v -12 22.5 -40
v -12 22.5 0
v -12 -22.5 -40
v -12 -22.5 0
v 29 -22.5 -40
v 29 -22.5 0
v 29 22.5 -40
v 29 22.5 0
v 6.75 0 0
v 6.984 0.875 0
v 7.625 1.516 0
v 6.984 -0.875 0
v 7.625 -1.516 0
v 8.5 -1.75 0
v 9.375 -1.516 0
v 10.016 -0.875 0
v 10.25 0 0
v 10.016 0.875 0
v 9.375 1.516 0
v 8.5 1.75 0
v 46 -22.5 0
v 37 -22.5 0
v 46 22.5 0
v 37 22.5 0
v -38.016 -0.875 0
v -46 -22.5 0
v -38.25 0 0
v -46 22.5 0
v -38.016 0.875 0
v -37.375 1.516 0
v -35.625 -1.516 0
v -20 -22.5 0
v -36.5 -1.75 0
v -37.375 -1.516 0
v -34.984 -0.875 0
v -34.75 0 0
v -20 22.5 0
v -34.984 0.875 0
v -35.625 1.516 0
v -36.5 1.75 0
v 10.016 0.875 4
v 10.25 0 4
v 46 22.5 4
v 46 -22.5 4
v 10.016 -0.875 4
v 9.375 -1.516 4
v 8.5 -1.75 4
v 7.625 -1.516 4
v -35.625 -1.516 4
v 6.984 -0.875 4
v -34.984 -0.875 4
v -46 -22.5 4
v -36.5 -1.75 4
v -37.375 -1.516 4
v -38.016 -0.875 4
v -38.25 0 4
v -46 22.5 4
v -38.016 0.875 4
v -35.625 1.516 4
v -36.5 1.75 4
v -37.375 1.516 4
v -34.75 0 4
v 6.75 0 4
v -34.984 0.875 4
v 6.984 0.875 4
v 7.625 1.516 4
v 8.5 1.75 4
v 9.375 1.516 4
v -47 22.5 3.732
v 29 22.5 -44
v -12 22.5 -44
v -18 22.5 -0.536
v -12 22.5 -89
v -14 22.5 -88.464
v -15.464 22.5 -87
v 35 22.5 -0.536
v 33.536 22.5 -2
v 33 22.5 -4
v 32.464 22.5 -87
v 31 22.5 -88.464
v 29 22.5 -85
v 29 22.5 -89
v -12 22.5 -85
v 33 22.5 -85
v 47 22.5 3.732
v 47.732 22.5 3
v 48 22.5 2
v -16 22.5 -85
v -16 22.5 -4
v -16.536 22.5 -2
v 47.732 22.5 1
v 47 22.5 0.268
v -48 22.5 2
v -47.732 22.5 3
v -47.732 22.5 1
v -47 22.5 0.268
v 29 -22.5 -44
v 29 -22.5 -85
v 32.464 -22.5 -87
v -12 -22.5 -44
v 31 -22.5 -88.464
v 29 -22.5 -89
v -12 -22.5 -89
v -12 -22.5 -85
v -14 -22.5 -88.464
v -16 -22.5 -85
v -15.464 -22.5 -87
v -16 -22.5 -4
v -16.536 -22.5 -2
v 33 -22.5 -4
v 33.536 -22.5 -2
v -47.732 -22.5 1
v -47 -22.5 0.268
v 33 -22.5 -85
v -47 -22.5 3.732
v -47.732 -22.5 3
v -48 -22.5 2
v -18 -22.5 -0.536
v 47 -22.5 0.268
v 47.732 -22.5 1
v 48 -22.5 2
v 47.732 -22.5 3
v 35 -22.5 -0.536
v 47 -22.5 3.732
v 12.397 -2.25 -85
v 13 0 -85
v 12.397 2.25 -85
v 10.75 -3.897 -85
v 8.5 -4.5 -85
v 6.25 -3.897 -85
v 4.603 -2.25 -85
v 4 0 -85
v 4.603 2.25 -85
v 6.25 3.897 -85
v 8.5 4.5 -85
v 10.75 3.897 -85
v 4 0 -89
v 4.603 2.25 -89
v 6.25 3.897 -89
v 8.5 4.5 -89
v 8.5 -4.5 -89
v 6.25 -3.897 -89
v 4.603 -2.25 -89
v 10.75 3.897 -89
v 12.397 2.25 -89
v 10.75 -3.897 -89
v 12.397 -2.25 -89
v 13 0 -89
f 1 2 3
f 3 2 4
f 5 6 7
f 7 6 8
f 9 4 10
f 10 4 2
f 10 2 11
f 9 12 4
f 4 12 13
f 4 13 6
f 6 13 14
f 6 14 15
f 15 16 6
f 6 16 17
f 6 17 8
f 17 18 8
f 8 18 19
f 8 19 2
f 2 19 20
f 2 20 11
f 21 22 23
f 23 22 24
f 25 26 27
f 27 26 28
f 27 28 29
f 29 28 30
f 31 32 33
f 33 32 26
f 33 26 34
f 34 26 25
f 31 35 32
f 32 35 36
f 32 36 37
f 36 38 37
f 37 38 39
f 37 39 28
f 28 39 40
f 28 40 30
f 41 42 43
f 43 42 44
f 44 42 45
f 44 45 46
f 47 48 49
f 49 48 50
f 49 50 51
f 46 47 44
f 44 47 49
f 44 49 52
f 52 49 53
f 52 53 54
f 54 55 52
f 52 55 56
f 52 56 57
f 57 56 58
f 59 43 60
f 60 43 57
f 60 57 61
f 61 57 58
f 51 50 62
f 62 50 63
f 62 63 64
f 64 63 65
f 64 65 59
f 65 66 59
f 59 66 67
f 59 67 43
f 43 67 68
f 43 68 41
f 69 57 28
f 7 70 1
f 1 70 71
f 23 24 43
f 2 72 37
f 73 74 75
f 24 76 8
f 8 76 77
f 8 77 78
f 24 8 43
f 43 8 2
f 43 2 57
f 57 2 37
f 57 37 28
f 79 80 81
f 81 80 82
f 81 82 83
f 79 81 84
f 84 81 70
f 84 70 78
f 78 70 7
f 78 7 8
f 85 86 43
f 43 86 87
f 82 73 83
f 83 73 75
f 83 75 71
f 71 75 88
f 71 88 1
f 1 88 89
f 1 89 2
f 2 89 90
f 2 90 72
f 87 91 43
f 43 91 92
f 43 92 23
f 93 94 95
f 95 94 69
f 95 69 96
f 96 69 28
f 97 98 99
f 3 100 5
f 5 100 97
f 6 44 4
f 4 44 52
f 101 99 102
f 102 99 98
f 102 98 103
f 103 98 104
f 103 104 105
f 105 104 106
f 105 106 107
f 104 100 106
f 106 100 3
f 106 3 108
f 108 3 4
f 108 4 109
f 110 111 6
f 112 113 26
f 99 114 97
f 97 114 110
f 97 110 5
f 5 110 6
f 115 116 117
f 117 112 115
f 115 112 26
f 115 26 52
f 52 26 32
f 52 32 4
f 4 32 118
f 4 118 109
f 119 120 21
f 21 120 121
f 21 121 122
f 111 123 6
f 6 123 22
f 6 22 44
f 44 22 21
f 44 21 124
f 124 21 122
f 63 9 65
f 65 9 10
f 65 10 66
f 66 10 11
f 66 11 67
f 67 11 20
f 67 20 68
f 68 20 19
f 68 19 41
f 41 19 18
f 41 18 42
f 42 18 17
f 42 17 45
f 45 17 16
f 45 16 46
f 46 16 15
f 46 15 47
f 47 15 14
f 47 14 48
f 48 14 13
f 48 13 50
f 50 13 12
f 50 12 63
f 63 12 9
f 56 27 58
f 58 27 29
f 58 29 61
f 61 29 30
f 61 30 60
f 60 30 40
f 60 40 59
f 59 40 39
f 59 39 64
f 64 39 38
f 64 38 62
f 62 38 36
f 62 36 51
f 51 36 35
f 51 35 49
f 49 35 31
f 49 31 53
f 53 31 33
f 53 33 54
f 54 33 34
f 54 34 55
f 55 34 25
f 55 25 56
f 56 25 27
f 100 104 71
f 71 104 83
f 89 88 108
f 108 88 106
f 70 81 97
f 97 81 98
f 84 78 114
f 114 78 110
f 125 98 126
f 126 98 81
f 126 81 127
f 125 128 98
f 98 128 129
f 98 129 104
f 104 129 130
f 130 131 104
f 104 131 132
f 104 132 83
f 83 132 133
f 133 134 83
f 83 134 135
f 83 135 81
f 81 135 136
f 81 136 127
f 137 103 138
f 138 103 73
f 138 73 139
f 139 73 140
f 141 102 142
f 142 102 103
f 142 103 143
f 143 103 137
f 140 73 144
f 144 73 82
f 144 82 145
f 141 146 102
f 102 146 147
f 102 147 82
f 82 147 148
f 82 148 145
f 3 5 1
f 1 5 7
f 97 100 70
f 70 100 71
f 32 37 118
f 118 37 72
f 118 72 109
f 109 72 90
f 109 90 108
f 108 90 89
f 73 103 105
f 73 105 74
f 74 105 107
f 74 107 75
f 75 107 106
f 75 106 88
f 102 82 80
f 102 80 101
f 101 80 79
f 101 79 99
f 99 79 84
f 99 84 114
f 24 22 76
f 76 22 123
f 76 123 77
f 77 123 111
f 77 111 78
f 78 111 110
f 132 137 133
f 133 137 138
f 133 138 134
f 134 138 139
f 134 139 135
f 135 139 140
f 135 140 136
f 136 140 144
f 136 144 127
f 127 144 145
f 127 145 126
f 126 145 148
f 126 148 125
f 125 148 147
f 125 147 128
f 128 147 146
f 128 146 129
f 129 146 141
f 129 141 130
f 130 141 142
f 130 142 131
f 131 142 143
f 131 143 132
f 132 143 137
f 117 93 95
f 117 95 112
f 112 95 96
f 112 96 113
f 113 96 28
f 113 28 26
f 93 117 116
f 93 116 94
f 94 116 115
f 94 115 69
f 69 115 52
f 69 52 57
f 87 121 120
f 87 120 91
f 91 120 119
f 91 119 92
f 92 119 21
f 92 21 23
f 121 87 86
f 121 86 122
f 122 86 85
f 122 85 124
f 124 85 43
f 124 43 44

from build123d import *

# Parameters (mm, degrees)
SKETCH_1_W          = 96
SKETCH_1_H          = 45
SKETCH_1_R          = 1.75
EXTRUDE_1_DEPTH     = 4
SKETCH_2_W          = 4
SKETCH_2_H          = 45
EXTRUDE_2_DEPTH     = 85
SKETCH_3_W          = 49
SKETCH_3_H          = 45
EXTRUDE_3_DEPTH     = 4
SKETCH_4_W          = 41
SKETCH_4_H          = 4
EXTRUDE_4_DEPTH     = 45
FILLET_1_R          = 4
SKETCH_5_R          = 4.5
CUT_EXTRUDE_1_DEPTH = 4
FILLET_2_R          = 2


with BuildPart() as part:
    # 草图1 → 凸台-拉伸1 (new body)
    with BuildSketch(Plane.XY):
        Rectangle(SKETCH_1_W, SKETCH_1_H)
        with Locations((8.5, 0)):
            Circle(SKETCH_1_R, mode=Mode.SUBTRACT)
        with Locations((-36.5, 0)):
            Circle(SKETCH_1_R, mode=Mode.SUBTRACT)
    extrude(amount=EXTRUDE_1_DEPTH)

    # 草图2 → 凸台-拉伸2 (add)
    with BuildSketch(Plane(origin=(0, 0, 0), x_dir=(-1, 0, 0), z_dir=(0, 0, -1))):
        with Locations((-31, 0)):
            Rectangle(SKETCH_2_W, SKETCH_2_H)
        with Locations((14, 0)):
            Rectangle(SKETCH_2_W, SKETCH_2_H)
    extrude(amount=EXTRUDE_2_DEPTH)

    # 草图3 → 凸台-拉伸3 (add)
    with BuildSketch(Plane(origin=(0, 0, -85), x_dir=(-1, 0, 0), z_dir=(0, 0, -1))):
        with Locations((-8.5, 0)):
            Rectangle(SKETCH_3_W, SKETCH_3_H)
    extrude(amount=EXTRUDE_3_DEPTH)

    # 草图4 → 凸台-拉伸4 (add)
    with BuildSketch(Plane.XZ.offset(22.5)):
        with Locations((8.5, -42)):
            Rectangle(SKETCH_4_W, SKETCH_4_H)
    extrude(amount=-EXTRUDE_4_DEPTH)

    # 圆角1
    fillet_1_edges = [part.edges().sort_by_distance(p)[0] for p in [
        (-16, 0, 0),
        (33, 0, 0),
        (33, 0, -89),
        (-16, 0, -89),
    ]]
    fillet(fillet_1_edges, radius=FILLET_1_R)

    # 草图5 → 切除-拉伸1 (cut)
    with BuildSketch(Plane(origin=(0, 0, -89), x_dir=(-1, 0, 0), z_dir=(0, 0, -1))):
        with Locations((-8.5, 0)):
            Circle(SKETCH_5_R)
    extrude(amount=-CUT_EXTRUDE_1_DEPTH, mode=Mode.SUBTRACT)

    # 圆角2
    fillet_2_edges = [part.edges().sort_by_distance(p)[0] for p in [
        (-48, 0, 4),
        (-48, 0, 0),
        (48, 0, 4),
        (48, 0, 0),
    ]]
    fillet(fillet_2_edges, radius=FILLET_2_R - 0.0001)  # a hair under: the kernel refuses the full size


solid = part.part
